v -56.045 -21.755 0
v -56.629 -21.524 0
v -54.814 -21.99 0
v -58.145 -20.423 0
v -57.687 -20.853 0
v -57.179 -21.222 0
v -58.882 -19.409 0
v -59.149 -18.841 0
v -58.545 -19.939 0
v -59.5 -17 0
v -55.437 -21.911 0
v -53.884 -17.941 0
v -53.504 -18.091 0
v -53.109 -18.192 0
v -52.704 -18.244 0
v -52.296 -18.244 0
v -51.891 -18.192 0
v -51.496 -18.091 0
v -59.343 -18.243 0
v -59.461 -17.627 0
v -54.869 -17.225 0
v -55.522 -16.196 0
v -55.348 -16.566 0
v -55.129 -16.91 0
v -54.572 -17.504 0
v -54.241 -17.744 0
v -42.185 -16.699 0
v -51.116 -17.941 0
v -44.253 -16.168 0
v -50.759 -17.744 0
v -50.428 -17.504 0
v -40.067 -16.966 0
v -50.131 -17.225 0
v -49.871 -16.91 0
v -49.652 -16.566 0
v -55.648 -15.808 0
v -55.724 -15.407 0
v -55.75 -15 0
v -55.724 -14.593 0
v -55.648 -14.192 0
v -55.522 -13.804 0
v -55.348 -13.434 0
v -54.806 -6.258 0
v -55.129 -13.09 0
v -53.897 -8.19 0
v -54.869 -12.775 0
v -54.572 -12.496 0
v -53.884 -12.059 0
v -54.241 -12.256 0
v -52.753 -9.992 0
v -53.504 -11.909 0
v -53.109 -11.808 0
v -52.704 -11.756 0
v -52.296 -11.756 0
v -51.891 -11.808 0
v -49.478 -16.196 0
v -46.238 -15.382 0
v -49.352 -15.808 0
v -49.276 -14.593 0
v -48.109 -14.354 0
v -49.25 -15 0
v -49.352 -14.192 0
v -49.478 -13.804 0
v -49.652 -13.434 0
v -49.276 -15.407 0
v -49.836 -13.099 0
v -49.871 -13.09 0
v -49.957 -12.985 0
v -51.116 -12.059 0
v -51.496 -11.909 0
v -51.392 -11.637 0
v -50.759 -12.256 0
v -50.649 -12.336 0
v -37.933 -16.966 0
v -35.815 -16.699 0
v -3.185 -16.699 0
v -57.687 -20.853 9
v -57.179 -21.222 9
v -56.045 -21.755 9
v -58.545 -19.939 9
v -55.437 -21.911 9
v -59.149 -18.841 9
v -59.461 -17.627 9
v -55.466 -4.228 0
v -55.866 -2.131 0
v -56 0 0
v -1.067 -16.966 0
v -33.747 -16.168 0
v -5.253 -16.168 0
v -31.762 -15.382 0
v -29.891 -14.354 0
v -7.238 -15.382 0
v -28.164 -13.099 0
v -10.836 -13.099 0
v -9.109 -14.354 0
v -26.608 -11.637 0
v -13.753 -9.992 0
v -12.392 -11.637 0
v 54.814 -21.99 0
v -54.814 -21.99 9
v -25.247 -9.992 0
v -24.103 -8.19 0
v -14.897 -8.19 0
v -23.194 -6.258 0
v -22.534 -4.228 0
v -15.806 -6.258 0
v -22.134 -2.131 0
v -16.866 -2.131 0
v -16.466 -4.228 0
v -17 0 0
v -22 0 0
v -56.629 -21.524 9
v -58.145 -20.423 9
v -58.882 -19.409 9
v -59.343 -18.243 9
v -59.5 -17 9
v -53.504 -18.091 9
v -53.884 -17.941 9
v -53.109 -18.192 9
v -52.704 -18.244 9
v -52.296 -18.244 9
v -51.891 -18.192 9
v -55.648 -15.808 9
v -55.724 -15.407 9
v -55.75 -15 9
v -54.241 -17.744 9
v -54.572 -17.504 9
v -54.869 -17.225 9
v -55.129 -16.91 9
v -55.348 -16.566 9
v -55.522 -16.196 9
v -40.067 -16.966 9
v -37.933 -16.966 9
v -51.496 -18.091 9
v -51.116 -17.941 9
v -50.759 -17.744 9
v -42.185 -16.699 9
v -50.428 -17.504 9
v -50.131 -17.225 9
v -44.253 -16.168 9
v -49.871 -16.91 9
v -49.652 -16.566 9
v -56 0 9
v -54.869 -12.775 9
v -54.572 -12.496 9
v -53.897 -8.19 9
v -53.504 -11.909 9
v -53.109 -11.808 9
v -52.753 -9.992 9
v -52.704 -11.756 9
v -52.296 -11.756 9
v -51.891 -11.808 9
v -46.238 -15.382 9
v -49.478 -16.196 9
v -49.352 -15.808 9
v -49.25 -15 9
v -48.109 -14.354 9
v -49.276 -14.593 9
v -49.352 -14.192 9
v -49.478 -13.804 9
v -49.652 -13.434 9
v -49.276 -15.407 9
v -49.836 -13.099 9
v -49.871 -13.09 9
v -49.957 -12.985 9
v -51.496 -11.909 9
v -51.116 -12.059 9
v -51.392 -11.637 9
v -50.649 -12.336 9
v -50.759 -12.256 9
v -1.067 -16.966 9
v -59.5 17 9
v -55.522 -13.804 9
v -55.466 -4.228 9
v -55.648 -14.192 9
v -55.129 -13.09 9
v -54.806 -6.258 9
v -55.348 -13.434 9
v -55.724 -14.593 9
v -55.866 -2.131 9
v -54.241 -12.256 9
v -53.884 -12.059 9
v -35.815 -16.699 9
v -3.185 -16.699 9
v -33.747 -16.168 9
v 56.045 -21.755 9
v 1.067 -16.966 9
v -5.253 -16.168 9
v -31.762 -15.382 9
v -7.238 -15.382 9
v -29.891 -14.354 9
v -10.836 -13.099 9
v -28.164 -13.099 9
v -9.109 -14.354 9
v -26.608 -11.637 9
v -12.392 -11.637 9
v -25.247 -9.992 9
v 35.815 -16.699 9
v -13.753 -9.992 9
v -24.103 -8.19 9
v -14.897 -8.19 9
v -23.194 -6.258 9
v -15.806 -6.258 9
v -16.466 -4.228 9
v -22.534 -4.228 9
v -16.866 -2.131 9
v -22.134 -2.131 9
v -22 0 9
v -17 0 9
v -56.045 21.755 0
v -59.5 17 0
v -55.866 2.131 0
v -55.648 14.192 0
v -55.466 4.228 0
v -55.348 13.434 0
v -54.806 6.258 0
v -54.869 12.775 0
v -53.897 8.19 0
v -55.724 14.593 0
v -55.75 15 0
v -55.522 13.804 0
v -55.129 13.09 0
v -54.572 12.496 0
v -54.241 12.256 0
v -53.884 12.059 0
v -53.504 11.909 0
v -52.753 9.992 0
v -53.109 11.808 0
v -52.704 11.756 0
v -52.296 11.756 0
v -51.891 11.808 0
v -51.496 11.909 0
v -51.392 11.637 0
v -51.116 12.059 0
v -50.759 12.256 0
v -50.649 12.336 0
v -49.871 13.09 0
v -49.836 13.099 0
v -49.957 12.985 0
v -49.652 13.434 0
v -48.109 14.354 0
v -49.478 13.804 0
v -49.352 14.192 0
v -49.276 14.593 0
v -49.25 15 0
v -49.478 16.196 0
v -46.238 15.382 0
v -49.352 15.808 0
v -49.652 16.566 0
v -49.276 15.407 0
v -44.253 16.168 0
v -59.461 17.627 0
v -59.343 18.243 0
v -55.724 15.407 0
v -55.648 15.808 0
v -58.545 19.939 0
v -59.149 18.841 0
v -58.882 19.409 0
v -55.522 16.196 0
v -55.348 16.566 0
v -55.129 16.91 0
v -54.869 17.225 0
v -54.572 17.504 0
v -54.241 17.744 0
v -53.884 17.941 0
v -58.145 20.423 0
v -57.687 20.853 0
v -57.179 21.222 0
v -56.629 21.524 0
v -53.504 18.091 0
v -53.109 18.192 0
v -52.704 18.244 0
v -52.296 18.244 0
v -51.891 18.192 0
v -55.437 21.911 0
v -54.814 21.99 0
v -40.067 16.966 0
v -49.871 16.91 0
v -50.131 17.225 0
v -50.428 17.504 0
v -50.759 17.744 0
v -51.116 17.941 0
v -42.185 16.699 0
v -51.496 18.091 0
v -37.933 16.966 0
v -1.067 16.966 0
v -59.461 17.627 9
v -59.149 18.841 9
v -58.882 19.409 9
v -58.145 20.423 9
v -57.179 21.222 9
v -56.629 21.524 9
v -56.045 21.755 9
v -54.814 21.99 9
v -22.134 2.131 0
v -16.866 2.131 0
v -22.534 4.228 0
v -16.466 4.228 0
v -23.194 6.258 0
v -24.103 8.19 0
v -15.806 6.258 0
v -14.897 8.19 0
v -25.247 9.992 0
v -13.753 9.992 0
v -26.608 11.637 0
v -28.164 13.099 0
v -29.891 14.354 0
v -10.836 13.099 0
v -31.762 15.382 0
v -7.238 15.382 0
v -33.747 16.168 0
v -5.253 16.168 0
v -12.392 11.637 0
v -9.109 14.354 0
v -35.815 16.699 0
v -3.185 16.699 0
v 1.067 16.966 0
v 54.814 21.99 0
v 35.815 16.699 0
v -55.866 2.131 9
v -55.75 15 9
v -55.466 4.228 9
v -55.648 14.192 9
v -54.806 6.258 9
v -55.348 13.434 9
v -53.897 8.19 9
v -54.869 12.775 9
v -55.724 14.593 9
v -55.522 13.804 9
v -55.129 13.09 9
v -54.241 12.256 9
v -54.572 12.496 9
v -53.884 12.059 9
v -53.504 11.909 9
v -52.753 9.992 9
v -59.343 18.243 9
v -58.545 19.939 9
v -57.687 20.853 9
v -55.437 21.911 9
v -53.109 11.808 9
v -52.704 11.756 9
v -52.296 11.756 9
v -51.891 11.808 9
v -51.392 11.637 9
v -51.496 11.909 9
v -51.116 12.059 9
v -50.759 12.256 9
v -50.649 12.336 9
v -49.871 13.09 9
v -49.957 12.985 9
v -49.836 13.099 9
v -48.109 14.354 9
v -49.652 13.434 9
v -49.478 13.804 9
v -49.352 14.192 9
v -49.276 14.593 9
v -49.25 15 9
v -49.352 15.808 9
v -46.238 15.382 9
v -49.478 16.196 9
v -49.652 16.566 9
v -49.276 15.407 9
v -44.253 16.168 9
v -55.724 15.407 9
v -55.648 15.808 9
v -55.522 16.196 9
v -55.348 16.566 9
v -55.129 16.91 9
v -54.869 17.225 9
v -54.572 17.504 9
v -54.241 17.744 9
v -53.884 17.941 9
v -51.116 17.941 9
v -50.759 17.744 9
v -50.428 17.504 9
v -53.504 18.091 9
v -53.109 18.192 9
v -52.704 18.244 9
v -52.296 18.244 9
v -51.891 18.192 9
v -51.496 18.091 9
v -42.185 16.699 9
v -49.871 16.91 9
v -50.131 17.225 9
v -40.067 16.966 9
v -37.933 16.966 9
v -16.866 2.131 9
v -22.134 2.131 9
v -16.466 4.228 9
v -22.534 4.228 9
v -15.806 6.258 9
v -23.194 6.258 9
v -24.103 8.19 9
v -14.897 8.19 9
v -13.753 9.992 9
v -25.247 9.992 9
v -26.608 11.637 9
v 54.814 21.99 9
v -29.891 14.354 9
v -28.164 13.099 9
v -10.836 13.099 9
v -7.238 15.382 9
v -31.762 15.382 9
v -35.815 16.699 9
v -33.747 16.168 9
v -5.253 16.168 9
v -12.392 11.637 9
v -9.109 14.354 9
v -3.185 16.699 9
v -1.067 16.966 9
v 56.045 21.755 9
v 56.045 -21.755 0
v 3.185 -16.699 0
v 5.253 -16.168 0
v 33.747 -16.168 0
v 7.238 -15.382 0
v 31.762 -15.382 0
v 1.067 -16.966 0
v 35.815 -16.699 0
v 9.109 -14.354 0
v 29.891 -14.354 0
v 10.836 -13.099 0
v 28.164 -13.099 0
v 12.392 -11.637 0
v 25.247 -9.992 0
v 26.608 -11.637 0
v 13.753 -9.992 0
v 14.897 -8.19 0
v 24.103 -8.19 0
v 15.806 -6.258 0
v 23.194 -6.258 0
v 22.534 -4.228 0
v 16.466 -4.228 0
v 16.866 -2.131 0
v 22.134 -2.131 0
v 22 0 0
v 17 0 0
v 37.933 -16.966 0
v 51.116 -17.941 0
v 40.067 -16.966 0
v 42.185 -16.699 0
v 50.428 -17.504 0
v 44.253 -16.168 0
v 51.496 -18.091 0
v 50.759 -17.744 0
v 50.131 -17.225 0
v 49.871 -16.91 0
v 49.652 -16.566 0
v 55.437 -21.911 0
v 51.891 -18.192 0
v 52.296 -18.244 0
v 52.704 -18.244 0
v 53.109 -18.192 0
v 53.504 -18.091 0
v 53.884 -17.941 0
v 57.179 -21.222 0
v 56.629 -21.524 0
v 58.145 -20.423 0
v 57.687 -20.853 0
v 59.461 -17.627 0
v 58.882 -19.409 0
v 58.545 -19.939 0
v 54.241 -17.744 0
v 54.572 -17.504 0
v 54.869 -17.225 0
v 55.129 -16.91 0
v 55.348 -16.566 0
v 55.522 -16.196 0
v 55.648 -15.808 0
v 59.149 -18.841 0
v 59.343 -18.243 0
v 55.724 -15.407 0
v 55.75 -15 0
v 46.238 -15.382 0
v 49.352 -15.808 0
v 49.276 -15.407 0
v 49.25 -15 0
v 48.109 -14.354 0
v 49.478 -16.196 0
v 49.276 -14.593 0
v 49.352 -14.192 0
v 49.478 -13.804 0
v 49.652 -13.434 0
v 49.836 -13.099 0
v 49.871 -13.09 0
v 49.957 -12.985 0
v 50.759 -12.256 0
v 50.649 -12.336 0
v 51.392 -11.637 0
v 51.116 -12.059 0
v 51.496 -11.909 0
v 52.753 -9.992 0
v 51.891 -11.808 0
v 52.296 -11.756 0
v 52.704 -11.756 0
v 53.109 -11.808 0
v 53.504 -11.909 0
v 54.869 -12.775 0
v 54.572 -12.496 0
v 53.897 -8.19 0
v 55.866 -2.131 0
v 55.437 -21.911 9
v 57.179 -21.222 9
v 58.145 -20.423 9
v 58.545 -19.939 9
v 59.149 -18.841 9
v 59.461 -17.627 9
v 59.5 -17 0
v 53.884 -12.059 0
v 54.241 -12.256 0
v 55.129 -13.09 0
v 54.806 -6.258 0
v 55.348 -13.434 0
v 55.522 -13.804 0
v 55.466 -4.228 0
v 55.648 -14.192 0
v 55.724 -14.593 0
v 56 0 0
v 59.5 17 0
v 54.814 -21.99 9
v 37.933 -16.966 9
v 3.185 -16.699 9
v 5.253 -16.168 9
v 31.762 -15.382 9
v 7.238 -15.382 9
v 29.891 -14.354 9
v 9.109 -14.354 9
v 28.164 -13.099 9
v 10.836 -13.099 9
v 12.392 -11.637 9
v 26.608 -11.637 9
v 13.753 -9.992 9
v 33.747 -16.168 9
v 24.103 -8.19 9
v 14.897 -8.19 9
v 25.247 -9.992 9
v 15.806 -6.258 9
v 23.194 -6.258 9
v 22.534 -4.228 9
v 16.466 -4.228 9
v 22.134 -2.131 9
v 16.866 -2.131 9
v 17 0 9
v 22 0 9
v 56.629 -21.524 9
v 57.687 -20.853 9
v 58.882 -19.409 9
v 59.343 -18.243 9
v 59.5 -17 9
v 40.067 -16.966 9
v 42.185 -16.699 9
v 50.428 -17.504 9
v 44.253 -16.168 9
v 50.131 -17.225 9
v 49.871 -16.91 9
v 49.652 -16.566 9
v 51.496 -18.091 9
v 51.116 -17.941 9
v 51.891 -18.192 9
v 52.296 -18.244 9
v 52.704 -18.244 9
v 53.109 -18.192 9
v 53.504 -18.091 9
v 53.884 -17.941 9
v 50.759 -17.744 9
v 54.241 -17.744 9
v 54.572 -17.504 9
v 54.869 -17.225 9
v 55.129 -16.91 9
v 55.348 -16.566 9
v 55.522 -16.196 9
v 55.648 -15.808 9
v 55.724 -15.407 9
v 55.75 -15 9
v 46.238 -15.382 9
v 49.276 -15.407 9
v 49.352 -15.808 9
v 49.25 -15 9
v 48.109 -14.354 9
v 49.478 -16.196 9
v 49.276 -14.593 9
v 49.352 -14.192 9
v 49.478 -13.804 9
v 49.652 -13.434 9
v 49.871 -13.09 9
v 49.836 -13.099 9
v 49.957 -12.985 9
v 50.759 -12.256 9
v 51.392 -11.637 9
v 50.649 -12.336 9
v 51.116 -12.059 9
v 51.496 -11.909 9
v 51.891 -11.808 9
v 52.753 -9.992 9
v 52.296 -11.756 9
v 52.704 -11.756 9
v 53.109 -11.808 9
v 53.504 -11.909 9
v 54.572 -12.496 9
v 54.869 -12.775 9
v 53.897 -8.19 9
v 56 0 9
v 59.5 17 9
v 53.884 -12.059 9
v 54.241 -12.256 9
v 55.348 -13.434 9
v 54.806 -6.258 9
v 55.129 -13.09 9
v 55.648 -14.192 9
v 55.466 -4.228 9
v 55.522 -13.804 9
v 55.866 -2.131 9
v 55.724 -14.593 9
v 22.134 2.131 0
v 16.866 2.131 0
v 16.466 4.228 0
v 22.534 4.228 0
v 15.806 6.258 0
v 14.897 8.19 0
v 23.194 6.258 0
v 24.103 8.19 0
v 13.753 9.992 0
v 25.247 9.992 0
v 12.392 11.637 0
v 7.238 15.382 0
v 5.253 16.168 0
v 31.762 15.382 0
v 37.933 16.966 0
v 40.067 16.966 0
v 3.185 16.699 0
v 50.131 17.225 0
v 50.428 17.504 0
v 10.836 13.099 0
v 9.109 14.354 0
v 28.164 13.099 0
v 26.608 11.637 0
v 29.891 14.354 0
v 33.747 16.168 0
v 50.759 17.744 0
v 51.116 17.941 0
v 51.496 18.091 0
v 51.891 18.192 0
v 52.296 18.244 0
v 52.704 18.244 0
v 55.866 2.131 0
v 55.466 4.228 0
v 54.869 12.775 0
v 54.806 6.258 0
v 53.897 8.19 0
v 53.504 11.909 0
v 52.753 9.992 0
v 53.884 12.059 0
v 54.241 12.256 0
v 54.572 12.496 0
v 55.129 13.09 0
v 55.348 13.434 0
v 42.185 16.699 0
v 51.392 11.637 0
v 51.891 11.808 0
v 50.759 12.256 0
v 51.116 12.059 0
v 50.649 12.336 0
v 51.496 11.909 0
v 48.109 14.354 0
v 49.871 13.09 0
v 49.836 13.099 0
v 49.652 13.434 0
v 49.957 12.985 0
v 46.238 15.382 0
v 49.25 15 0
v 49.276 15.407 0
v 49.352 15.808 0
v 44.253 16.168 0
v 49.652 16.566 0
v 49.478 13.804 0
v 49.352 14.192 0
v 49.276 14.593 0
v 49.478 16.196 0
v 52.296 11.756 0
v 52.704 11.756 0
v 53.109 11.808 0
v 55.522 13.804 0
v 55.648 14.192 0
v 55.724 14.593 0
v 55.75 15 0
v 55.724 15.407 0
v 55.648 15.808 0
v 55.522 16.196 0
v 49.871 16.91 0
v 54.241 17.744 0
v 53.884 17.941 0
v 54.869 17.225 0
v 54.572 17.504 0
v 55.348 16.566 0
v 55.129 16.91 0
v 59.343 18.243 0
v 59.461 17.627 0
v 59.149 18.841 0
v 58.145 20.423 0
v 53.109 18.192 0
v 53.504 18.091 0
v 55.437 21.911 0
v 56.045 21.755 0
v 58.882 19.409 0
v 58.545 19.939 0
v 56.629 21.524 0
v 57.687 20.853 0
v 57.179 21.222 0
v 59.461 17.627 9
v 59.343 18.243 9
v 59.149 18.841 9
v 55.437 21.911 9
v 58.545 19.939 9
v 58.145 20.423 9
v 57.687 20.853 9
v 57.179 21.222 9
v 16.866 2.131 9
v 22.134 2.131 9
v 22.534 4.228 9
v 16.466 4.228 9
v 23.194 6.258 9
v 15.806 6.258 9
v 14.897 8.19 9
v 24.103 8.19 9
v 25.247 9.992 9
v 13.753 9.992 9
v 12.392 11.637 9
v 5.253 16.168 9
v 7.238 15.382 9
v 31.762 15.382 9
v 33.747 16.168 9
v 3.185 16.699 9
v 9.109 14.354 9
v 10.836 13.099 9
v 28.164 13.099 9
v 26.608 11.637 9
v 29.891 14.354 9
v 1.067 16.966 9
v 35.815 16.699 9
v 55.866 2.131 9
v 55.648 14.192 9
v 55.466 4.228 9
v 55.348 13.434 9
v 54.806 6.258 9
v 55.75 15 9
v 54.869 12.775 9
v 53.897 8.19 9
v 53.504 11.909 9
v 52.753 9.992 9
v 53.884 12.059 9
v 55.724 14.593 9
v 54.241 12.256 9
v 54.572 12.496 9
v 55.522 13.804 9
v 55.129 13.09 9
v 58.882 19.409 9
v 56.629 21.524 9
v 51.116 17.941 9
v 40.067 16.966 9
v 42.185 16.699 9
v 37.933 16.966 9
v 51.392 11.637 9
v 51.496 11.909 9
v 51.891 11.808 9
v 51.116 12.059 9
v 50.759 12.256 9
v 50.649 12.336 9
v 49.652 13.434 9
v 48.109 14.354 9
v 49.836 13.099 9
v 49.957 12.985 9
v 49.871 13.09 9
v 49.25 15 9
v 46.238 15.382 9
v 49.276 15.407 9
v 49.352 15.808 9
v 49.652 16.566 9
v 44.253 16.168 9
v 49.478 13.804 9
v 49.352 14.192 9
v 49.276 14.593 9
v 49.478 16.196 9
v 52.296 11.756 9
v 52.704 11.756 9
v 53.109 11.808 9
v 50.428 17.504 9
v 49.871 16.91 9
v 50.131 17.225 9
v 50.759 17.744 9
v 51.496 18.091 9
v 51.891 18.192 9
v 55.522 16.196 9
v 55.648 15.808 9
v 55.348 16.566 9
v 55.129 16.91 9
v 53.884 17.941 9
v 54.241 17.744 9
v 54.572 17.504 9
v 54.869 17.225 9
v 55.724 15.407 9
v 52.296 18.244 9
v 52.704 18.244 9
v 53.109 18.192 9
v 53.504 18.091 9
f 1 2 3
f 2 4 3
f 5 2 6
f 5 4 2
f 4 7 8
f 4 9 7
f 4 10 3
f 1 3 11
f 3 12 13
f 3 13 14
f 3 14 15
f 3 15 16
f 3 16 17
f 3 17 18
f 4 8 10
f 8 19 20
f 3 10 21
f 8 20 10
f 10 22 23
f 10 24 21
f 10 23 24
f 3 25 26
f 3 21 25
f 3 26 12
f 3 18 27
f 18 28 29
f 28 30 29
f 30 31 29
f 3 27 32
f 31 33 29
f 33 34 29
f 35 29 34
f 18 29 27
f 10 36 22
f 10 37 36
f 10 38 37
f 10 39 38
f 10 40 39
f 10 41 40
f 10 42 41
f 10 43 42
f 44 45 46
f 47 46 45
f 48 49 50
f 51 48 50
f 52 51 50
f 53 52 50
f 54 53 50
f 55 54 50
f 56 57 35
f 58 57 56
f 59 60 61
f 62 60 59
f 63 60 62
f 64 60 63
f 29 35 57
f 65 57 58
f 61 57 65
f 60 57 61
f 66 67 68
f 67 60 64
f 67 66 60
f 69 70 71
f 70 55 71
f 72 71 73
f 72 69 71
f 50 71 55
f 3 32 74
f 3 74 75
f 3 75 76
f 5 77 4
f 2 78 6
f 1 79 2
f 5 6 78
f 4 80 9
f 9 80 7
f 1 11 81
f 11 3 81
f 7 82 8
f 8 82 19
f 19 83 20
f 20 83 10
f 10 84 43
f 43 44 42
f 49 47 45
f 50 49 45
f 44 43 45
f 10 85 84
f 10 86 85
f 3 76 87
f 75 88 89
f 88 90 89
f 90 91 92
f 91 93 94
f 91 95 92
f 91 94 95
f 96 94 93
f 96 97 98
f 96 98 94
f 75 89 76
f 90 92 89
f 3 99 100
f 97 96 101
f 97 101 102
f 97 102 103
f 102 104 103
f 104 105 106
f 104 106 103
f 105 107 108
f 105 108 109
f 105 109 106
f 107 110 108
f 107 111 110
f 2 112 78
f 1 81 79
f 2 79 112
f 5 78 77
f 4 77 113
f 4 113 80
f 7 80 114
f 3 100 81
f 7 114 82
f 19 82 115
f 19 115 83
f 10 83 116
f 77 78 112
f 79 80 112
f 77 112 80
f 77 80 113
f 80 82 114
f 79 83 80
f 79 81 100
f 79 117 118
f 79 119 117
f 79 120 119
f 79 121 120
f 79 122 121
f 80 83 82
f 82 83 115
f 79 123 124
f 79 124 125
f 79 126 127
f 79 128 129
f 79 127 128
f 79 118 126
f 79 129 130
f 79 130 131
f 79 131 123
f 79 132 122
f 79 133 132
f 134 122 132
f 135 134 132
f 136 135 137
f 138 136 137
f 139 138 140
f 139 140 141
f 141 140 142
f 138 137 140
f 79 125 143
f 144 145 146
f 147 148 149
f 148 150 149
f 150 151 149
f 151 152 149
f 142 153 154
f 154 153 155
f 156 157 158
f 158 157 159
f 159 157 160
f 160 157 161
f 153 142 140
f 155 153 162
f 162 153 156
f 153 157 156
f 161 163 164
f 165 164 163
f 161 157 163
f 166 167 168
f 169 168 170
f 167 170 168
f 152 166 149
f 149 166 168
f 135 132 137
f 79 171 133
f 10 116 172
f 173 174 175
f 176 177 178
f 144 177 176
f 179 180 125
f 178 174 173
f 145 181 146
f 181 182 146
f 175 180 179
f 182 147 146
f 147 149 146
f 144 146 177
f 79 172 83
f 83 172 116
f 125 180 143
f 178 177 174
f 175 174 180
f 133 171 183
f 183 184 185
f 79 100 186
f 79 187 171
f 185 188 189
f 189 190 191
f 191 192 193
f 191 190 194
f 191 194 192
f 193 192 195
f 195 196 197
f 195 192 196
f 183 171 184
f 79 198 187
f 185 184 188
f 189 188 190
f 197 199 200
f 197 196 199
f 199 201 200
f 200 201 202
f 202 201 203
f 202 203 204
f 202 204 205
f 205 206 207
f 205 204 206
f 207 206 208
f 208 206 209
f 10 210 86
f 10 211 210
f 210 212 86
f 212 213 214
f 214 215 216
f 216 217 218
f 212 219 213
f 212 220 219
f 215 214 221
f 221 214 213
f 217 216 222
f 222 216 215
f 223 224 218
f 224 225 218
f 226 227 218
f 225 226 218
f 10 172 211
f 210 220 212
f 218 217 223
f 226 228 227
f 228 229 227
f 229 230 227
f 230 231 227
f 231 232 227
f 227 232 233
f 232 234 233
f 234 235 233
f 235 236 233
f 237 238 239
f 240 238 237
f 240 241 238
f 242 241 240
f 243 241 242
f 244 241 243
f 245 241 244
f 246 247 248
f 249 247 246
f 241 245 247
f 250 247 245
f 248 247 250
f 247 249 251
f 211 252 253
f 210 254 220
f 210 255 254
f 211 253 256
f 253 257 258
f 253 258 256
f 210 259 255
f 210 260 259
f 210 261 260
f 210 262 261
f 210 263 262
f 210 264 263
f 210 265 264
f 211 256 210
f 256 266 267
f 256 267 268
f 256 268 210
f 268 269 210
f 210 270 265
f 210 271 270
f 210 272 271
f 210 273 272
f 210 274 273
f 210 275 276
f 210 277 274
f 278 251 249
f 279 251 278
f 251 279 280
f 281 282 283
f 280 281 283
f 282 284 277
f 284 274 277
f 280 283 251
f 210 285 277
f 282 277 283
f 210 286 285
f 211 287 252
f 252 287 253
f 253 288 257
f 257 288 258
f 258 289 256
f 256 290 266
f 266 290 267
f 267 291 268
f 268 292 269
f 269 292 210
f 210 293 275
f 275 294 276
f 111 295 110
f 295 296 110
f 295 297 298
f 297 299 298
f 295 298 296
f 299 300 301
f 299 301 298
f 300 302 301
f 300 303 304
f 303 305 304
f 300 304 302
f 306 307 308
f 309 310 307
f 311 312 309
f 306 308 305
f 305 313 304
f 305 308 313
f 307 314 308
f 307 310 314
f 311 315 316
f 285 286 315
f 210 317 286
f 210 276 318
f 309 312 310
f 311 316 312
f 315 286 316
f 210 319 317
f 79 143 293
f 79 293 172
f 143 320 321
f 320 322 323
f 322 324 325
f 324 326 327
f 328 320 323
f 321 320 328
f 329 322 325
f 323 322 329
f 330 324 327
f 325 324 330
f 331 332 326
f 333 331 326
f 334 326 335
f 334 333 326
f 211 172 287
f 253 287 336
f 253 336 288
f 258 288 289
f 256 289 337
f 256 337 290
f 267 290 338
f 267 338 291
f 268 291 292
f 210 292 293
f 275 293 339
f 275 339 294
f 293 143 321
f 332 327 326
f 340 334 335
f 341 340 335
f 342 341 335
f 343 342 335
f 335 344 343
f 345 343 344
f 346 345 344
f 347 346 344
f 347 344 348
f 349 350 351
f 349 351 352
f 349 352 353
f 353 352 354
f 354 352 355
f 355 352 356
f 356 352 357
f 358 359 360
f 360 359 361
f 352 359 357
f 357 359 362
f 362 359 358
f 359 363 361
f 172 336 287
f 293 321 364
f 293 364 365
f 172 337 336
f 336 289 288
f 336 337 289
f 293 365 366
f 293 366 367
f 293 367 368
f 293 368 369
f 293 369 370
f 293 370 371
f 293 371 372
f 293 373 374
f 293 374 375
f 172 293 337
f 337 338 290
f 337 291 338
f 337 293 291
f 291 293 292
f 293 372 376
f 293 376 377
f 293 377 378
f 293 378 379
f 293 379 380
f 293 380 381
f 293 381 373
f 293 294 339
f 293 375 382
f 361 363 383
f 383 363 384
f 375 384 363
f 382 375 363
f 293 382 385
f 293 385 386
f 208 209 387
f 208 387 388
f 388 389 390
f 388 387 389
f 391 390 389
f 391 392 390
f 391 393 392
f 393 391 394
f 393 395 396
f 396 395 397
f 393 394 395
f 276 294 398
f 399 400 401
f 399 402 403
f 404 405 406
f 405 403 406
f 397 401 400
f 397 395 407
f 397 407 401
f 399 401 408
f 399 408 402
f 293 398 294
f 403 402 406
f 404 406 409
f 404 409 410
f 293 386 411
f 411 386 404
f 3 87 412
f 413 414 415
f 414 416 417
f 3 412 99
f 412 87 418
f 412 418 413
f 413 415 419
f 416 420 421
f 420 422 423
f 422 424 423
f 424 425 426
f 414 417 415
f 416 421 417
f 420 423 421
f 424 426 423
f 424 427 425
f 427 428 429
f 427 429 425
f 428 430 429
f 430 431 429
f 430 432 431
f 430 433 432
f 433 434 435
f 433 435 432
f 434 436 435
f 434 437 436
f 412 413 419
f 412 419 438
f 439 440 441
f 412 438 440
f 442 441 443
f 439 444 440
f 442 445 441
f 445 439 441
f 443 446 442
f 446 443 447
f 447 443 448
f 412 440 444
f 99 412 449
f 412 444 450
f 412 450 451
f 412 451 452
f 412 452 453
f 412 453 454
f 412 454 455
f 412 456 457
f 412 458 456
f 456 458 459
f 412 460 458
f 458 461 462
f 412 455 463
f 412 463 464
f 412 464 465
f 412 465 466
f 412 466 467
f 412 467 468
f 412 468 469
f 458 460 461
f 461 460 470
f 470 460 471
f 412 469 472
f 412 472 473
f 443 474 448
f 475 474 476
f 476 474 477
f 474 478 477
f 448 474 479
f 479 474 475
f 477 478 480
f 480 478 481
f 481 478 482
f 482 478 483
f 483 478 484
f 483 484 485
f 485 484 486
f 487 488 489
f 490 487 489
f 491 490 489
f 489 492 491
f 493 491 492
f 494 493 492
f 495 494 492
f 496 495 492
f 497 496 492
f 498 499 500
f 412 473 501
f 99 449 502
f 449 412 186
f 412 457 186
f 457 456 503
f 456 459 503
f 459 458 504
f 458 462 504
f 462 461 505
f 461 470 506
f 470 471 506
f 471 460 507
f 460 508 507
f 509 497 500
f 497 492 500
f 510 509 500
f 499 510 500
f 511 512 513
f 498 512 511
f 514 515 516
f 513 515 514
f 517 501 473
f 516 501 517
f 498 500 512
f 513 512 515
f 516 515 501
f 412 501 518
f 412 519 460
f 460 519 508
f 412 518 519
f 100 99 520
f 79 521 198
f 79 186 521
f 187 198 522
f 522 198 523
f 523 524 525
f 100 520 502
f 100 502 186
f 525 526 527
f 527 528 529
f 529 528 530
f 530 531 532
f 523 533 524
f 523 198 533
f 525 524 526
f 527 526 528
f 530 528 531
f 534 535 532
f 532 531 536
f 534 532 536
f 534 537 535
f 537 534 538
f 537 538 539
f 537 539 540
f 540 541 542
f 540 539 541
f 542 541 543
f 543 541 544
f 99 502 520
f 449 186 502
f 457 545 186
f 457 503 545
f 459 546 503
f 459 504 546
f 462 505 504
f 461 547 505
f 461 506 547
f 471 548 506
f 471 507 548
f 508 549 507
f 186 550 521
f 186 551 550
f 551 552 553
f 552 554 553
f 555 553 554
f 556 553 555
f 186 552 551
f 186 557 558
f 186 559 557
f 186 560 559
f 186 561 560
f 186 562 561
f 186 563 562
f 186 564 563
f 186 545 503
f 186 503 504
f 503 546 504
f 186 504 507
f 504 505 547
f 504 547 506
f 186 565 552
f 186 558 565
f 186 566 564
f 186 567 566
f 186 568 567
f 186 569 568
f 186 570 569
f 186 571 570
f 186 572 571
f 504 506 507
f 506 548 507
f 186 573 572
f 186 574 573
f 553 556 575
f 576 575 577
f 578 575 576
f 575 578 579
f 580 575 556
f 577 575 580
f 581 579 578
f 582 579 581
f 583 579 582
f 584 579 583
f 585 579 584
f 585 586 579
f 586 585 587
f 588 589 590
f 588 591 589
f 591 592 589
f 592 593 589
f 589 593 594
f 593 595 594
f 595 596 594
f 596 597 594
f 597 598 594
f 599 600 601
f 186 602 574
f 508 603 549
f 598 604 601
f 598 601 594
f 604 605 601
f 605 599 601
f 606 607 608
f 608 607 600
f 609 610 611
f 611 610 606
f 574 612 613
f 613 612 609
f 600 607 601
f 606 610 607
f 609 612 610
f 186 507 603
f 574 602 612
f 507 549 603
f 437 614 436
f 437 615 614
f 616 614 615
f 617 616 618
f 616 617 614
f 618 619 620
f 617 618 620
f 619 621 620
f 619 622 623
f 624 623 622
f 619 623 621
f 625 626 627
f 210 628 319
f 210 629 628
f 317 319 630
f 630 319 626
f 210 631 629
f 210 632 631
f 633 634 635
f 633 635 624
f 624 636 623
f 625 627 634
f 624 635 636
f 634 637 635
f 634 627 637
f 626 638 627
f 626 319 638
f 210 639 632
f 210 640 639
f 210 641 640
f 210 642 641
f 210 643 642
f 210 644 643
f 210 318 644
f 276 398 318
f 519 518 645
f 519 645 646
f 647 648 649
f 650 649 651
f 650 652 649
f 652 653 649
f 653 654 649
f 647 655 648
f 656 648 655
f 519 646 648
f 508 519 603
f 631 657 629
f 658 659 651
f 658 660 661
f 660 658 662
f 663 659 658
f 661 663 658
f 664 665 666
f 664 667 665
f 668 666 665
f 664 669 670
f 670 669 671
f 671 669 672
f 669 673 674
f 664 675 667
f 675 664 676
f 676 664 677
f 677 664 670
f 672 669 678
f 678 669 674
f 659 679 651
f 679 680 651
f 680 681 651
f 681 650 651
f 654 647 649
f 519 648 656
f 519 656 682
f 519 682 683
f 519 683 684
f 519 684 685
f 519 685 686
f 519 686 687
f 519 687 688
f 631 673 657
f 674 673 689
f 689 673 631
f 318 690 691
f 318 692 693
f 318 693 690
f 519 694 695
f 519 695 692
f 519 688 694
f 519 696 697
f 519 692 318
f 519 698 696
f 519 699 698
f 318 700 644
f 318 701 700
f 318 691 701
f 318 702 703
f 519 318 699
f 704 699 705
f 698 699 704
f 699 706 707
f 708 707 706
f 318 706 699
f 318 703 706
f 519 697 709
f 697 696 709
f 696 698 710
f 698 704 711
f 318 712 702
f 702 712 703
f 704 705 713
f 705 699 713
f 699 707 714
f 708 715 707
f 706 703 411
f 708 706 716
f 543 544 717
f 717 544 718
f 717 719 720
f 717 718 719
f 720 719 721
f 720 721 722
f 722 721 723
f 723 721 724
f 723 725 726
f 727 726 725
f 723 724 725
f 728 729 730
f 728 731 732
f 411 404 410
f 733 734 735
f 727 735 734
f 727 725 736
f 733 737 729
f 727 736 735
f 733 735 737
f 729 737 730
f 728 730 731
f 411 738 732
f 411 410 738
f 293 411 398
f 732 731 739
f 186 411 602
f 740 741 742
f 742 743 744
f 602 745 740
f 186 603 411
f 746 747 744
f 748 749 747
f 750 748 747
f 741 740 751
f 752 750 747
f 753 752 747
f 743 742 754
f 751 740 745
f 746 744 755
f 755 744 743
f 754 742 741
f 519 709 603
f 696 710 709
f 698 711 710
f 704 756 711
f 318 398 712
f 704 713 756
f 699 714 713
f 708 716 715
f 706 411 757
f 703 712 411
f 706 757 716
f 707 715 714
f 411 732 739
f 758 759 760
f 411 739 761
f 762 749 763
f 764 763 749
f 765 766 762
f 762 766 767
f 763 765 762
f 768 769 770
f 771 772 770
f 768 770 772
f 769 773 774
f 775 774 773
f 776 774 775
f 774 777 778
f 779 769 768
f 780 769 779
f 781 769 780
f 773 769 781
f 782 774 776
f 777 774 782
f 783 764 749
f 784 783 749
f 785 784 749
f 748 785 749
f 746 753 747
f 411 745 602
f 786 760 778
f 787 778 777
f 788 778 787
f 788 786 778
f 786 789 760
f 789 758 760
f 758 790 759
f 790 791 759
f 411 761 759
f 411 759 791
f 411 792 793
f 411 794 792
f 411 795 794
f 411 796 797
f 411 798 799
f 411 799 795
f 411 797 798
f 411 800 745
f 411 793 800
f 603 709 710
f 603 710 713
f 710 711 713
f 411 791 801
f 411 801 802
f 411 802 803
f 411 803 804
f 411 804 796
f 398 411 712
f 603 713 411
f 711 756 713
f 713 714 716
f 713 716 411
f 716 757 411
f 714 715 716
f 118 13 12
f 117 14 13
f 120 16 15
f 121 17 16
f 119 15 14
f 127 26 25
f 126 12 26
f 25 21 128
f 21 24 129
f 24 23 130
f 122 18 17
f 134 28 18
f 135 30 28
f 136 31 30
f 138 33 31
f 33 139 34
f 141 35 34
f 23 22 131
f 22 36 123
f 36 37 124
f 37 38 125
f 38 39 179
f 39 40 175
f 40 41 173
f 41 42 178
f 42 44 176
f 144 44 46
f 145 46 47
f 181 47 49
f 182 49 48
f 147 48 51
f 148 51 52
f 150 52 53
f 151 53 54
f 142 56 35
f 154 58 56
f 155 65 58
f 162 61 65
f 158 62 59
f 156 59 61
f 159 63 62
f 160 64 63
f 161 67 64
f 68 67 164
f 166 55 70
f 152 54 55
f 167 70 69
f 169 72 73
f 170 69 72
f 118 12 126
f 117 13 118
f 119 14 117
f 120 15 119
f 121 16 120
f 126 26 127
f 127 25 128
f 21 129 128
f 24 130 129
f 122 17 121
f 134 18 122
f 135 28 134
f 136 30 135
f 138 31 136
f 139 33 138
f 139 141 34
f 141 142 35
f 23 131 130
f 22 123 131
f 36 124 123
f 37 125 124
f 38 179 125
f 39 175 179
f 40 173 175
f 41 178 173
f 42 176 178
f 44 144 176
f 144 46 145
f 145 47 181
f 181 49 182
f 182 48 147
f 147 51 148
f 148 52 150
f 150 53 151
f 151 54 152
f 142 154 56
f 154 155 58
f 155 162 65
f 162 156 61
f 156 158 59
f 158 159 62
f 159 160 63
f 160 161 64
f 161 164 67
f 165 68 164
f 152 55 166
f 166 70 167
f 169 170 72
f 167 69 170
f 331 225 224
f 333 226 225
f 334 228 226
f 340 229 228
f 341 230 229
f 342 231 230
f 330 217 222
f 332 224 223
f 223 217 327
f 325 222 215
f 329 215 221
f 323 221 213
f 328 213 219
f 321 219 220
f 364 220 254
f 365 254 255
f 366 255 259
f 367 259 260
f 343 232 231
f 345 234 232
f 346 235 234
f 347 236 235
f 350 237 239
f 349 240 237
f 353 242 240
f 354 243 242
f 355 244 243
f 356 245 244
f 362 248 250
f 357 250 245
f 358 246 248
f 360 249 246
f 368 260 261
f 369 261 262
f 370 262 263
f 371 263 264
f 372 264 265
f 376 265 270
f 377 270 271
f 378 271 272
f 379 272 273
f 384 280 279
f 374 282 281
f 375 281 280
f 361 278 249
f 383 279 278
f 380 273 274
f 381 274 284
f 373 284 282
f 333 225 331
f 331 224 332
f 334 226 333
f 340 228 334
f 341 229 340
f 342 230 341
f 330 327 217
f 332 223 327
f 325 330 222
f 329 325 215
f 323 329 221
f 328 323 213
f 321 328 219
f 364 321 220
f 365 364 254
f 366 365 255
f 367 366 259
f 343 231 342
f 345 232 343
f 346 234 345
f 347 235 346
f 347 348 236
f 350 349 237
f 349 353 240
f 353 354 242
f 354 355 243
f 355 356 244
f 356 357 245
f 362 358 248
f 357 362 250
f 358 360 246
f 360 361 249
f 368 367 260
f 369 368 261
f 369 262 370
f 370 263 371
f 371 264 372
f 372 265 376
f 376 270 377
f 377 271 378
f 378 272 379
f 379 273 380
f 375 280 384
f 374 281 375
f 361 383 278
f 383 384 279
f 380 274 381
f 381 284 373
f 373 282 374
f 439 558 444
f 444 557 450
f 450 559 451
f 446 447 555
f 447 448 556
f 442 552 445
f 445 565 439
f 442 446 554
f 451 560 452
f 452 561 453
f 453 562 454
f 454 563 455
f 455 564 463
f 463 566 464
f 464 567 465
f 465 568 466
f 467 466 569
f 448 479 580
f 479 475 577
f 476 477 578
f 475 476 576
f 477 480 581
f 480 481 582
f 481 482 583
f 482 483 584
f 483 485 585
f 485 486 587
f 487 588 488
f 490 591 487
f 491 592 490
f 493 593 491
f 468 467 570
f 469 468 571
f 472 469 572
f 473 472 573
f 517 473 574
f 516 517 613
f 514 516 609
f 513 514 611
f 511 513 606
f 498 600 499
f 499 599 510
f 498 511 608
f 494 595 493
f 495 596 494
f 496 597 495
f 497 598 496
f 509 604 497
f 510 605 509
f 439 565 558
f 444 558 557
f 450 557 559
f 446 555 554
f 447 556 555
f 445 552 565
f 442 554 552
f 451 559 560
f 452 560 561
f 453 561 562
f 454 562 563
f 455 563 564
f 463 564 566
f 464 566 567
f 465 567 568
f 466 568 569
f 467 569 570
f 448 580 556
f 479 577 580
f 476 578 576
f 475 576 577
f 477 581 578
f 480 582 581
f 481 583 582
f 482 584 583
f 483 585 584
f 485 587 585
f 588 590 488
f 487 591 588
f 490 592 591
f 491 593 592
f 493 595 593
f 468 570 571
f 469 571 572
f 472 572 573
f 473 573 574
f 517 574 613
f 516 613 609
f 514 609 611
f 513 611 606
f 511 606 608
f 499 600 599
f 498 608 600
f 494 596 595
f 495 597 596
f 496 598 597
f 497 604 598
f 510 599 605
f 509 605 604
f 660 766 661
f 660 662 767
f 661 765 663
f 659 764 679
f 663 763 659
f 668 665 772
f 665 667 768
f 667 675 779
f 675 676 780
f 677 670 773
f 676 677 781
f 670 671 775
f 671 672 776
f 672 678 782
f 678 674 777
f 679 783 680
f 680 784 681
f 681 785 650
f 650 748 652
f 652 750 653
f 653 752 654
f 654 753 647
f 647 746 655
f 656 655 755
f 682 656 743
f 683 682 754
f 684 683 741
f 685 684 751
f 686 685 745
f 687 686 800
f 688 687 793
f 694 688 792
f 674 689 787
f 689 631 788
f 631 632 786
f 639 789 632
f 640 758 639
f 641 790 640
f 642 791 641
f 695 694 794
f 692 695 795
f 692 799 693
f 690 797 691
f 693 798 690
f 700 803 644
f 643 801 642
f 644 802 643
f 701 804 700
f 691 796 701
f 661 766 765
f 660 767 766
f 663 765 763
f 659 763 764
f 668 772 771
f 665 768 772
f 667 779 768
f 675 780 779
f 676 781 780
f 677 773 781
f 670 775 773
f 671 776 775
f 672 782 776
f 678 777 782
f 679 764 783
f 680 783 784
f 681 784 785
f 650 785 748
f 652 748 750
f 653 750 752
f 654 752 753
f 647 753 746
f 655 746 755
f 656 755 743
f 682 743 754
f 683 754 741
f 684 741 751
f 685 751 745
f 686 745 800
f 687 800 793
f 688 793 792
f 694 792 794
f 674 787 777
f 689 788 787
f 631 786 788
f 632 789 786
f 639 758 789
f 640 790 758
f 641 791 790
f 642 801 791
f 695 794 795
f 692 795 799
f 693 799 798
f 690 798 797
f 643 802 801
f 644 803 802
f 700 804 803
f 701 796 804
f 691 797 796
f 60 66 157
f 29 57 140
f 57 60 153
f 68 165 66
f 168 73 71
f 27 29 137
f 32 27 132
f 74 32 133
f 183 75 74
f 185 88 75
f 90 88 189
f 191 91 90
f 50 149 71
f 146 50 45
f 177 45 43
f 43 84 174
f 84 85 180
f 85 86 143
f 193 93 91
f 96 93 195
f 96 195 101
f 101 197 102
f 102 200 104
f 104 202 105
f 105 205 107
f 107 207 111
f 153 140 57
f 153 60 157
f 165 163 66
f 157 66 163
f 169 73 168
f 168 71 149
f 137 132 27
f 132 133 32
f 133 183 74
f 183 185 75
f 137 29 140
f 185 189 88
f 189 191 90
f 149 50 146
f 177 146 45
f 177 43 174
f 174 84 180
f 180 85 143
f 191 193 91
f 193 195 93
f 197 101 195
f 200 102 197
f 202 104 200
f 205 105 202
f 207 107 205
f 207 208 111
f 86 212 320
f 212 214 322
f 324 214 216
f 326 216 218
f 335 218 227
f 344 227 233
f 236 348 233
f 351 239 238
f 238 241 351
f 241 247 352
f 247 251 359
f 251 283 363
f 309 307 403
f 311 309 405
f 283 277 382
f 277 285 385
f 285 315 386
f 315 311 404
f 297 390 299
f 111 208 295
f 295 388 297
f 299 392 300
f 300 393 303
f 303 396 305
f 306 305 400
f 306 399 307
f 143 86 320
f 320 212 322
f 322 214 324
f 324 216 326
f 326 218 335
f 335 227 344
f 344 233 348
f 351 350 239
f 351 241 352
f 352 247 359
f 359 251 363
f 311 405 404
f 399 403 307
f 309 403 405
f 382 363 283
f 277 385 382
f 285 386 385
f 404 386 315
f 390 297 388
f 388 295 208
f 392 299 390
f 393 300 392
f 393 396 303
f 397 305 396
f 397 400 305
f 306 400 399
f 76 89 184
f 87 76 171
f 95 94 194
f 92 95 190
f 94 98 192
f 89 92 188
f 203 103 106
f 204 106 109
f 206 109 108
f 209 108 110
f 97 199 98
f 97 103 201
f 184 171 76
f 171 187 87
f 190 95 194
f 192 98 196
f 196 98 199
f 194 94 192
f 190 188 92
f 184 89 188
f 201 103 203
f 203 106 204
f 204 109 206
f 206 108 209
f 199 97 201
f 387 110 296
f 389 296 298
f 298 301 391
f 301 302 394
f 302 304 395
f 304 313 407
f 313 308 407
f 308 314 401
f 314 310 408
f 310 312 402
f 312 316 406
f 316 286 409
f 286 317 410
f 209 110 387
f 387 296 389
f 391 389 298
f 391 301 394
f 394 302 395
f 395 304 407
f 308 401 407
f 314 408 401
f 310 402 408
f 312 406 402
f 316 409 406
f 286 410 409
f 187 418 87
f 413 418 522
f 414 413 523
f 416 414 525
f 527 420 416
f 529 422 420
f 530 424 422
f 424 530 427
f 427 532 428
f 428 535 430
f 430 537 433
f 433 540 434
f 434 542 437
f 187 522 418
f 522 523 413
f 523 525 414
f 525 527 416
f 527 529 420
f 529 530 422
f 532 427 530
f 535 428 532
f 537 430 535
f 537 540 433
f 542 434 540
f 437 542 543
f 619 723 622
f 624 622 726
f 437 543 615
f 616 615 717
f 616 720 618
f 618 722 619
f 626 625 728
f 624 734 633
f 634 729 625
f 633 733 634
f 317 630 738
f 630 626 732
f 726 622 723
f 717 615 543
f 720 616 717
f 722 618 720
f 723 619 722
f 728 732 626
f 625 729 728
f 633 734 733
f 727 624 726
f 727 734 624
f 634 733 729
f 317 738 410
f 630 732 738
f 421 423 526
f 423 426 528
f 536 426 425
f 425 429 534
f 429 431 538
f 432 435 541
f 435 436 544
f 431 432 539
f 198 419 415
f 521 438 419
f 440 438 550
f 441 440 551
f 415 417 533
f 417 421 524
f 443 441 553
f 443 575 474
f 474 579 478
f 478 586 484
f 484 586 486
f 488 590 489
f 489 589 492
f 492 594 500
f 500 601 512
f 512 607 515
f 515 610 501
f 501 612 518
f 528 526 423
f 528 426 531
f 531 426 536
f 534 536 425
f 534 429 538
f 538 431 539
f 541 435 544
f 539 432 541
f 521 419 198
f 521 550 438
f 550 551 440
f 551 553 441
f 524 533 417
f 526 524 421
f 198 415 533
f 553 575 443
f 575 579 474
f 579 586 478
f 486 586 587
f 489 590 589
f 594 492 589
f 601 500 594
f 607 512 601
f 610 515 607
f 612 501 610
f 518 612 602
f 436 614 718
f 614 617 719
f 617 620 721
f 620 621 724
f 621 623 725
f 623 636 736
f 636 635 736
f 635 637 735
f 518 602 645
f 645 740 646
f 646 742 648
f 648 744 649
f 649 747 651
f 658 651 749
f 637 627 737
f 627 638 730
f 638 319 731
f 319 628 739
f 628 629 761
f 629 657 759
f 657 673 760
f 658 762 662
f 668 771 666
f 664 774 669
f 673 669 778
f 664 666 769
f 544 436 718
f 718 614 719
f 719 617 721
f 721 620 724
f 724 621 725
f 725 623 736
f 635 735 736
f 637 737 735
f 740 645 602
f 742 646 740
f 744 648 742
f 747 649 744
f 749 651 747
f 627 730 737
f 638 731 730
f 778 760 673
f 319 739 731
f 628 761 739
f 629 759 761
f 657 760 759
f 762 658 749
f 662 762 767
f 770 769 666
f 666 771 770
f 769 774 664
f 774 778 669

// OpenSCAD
$fn = 50;

difference() {
	union() {
		hull() {
			translate(v = [-54.5, 17.0, 0]) {
				cylinder(h = 9, r = 5);
			}
			translate(v = [54.5, 17.0, 0]) {
				cylinder(h = 9, r = 5);
			}
			translate(v = [-54.5, -17.0, 0]) {
				cylinder(h = 9, r = 5);
			}
			translate(v = [54.5, -17.0, 0]) {
				cylinder(h = 9, r = 5);
			}
		}
	}
	union() {
		translate(v = [-52.5, -15.0, -100.0]) {
			cylinder(h = 200, r = 3.25);
		}
		translate(v = [-52.5, 15.0, -100.0]) {
			cylinder(h = 200, r = 3.25);
		}
		translate(v = [52.5, -15.0, -100.0]) {
			cylinder(h = 200, r = 3.25);
		}
		translate(v = [52.5, 15.0, -100.0]) {
			cylinder(h = 200, r = 3.25);
		}
		translate(v = [-52.5, -15.0, -100.0]) {
			cylinder(h = 200, r = 1.8);
		}
		translate(v = [-52.5, 15.0, -100.0]) {
			cylinder(h = 200, r = 1.8);
		}
		translate(v = [52.5, -15.0, -100.0]) {
			cylinder(h = 200, r = 1.8);
		}
		translate(v = [52.5, 15.0, -100.0]) {
			cylinder(h = 200, r = 1.8);
		}
		translate(v = [-39.0, 0, 0.0]) {
			cylinder(h = 9, r = 17.0);
		}
		cylinder(h = 9, r = 17.0);
		translate(v = [39.0, 0, 0.0]) {
			cylinder(h = 9, r = 17.0);
		}
	}
}
